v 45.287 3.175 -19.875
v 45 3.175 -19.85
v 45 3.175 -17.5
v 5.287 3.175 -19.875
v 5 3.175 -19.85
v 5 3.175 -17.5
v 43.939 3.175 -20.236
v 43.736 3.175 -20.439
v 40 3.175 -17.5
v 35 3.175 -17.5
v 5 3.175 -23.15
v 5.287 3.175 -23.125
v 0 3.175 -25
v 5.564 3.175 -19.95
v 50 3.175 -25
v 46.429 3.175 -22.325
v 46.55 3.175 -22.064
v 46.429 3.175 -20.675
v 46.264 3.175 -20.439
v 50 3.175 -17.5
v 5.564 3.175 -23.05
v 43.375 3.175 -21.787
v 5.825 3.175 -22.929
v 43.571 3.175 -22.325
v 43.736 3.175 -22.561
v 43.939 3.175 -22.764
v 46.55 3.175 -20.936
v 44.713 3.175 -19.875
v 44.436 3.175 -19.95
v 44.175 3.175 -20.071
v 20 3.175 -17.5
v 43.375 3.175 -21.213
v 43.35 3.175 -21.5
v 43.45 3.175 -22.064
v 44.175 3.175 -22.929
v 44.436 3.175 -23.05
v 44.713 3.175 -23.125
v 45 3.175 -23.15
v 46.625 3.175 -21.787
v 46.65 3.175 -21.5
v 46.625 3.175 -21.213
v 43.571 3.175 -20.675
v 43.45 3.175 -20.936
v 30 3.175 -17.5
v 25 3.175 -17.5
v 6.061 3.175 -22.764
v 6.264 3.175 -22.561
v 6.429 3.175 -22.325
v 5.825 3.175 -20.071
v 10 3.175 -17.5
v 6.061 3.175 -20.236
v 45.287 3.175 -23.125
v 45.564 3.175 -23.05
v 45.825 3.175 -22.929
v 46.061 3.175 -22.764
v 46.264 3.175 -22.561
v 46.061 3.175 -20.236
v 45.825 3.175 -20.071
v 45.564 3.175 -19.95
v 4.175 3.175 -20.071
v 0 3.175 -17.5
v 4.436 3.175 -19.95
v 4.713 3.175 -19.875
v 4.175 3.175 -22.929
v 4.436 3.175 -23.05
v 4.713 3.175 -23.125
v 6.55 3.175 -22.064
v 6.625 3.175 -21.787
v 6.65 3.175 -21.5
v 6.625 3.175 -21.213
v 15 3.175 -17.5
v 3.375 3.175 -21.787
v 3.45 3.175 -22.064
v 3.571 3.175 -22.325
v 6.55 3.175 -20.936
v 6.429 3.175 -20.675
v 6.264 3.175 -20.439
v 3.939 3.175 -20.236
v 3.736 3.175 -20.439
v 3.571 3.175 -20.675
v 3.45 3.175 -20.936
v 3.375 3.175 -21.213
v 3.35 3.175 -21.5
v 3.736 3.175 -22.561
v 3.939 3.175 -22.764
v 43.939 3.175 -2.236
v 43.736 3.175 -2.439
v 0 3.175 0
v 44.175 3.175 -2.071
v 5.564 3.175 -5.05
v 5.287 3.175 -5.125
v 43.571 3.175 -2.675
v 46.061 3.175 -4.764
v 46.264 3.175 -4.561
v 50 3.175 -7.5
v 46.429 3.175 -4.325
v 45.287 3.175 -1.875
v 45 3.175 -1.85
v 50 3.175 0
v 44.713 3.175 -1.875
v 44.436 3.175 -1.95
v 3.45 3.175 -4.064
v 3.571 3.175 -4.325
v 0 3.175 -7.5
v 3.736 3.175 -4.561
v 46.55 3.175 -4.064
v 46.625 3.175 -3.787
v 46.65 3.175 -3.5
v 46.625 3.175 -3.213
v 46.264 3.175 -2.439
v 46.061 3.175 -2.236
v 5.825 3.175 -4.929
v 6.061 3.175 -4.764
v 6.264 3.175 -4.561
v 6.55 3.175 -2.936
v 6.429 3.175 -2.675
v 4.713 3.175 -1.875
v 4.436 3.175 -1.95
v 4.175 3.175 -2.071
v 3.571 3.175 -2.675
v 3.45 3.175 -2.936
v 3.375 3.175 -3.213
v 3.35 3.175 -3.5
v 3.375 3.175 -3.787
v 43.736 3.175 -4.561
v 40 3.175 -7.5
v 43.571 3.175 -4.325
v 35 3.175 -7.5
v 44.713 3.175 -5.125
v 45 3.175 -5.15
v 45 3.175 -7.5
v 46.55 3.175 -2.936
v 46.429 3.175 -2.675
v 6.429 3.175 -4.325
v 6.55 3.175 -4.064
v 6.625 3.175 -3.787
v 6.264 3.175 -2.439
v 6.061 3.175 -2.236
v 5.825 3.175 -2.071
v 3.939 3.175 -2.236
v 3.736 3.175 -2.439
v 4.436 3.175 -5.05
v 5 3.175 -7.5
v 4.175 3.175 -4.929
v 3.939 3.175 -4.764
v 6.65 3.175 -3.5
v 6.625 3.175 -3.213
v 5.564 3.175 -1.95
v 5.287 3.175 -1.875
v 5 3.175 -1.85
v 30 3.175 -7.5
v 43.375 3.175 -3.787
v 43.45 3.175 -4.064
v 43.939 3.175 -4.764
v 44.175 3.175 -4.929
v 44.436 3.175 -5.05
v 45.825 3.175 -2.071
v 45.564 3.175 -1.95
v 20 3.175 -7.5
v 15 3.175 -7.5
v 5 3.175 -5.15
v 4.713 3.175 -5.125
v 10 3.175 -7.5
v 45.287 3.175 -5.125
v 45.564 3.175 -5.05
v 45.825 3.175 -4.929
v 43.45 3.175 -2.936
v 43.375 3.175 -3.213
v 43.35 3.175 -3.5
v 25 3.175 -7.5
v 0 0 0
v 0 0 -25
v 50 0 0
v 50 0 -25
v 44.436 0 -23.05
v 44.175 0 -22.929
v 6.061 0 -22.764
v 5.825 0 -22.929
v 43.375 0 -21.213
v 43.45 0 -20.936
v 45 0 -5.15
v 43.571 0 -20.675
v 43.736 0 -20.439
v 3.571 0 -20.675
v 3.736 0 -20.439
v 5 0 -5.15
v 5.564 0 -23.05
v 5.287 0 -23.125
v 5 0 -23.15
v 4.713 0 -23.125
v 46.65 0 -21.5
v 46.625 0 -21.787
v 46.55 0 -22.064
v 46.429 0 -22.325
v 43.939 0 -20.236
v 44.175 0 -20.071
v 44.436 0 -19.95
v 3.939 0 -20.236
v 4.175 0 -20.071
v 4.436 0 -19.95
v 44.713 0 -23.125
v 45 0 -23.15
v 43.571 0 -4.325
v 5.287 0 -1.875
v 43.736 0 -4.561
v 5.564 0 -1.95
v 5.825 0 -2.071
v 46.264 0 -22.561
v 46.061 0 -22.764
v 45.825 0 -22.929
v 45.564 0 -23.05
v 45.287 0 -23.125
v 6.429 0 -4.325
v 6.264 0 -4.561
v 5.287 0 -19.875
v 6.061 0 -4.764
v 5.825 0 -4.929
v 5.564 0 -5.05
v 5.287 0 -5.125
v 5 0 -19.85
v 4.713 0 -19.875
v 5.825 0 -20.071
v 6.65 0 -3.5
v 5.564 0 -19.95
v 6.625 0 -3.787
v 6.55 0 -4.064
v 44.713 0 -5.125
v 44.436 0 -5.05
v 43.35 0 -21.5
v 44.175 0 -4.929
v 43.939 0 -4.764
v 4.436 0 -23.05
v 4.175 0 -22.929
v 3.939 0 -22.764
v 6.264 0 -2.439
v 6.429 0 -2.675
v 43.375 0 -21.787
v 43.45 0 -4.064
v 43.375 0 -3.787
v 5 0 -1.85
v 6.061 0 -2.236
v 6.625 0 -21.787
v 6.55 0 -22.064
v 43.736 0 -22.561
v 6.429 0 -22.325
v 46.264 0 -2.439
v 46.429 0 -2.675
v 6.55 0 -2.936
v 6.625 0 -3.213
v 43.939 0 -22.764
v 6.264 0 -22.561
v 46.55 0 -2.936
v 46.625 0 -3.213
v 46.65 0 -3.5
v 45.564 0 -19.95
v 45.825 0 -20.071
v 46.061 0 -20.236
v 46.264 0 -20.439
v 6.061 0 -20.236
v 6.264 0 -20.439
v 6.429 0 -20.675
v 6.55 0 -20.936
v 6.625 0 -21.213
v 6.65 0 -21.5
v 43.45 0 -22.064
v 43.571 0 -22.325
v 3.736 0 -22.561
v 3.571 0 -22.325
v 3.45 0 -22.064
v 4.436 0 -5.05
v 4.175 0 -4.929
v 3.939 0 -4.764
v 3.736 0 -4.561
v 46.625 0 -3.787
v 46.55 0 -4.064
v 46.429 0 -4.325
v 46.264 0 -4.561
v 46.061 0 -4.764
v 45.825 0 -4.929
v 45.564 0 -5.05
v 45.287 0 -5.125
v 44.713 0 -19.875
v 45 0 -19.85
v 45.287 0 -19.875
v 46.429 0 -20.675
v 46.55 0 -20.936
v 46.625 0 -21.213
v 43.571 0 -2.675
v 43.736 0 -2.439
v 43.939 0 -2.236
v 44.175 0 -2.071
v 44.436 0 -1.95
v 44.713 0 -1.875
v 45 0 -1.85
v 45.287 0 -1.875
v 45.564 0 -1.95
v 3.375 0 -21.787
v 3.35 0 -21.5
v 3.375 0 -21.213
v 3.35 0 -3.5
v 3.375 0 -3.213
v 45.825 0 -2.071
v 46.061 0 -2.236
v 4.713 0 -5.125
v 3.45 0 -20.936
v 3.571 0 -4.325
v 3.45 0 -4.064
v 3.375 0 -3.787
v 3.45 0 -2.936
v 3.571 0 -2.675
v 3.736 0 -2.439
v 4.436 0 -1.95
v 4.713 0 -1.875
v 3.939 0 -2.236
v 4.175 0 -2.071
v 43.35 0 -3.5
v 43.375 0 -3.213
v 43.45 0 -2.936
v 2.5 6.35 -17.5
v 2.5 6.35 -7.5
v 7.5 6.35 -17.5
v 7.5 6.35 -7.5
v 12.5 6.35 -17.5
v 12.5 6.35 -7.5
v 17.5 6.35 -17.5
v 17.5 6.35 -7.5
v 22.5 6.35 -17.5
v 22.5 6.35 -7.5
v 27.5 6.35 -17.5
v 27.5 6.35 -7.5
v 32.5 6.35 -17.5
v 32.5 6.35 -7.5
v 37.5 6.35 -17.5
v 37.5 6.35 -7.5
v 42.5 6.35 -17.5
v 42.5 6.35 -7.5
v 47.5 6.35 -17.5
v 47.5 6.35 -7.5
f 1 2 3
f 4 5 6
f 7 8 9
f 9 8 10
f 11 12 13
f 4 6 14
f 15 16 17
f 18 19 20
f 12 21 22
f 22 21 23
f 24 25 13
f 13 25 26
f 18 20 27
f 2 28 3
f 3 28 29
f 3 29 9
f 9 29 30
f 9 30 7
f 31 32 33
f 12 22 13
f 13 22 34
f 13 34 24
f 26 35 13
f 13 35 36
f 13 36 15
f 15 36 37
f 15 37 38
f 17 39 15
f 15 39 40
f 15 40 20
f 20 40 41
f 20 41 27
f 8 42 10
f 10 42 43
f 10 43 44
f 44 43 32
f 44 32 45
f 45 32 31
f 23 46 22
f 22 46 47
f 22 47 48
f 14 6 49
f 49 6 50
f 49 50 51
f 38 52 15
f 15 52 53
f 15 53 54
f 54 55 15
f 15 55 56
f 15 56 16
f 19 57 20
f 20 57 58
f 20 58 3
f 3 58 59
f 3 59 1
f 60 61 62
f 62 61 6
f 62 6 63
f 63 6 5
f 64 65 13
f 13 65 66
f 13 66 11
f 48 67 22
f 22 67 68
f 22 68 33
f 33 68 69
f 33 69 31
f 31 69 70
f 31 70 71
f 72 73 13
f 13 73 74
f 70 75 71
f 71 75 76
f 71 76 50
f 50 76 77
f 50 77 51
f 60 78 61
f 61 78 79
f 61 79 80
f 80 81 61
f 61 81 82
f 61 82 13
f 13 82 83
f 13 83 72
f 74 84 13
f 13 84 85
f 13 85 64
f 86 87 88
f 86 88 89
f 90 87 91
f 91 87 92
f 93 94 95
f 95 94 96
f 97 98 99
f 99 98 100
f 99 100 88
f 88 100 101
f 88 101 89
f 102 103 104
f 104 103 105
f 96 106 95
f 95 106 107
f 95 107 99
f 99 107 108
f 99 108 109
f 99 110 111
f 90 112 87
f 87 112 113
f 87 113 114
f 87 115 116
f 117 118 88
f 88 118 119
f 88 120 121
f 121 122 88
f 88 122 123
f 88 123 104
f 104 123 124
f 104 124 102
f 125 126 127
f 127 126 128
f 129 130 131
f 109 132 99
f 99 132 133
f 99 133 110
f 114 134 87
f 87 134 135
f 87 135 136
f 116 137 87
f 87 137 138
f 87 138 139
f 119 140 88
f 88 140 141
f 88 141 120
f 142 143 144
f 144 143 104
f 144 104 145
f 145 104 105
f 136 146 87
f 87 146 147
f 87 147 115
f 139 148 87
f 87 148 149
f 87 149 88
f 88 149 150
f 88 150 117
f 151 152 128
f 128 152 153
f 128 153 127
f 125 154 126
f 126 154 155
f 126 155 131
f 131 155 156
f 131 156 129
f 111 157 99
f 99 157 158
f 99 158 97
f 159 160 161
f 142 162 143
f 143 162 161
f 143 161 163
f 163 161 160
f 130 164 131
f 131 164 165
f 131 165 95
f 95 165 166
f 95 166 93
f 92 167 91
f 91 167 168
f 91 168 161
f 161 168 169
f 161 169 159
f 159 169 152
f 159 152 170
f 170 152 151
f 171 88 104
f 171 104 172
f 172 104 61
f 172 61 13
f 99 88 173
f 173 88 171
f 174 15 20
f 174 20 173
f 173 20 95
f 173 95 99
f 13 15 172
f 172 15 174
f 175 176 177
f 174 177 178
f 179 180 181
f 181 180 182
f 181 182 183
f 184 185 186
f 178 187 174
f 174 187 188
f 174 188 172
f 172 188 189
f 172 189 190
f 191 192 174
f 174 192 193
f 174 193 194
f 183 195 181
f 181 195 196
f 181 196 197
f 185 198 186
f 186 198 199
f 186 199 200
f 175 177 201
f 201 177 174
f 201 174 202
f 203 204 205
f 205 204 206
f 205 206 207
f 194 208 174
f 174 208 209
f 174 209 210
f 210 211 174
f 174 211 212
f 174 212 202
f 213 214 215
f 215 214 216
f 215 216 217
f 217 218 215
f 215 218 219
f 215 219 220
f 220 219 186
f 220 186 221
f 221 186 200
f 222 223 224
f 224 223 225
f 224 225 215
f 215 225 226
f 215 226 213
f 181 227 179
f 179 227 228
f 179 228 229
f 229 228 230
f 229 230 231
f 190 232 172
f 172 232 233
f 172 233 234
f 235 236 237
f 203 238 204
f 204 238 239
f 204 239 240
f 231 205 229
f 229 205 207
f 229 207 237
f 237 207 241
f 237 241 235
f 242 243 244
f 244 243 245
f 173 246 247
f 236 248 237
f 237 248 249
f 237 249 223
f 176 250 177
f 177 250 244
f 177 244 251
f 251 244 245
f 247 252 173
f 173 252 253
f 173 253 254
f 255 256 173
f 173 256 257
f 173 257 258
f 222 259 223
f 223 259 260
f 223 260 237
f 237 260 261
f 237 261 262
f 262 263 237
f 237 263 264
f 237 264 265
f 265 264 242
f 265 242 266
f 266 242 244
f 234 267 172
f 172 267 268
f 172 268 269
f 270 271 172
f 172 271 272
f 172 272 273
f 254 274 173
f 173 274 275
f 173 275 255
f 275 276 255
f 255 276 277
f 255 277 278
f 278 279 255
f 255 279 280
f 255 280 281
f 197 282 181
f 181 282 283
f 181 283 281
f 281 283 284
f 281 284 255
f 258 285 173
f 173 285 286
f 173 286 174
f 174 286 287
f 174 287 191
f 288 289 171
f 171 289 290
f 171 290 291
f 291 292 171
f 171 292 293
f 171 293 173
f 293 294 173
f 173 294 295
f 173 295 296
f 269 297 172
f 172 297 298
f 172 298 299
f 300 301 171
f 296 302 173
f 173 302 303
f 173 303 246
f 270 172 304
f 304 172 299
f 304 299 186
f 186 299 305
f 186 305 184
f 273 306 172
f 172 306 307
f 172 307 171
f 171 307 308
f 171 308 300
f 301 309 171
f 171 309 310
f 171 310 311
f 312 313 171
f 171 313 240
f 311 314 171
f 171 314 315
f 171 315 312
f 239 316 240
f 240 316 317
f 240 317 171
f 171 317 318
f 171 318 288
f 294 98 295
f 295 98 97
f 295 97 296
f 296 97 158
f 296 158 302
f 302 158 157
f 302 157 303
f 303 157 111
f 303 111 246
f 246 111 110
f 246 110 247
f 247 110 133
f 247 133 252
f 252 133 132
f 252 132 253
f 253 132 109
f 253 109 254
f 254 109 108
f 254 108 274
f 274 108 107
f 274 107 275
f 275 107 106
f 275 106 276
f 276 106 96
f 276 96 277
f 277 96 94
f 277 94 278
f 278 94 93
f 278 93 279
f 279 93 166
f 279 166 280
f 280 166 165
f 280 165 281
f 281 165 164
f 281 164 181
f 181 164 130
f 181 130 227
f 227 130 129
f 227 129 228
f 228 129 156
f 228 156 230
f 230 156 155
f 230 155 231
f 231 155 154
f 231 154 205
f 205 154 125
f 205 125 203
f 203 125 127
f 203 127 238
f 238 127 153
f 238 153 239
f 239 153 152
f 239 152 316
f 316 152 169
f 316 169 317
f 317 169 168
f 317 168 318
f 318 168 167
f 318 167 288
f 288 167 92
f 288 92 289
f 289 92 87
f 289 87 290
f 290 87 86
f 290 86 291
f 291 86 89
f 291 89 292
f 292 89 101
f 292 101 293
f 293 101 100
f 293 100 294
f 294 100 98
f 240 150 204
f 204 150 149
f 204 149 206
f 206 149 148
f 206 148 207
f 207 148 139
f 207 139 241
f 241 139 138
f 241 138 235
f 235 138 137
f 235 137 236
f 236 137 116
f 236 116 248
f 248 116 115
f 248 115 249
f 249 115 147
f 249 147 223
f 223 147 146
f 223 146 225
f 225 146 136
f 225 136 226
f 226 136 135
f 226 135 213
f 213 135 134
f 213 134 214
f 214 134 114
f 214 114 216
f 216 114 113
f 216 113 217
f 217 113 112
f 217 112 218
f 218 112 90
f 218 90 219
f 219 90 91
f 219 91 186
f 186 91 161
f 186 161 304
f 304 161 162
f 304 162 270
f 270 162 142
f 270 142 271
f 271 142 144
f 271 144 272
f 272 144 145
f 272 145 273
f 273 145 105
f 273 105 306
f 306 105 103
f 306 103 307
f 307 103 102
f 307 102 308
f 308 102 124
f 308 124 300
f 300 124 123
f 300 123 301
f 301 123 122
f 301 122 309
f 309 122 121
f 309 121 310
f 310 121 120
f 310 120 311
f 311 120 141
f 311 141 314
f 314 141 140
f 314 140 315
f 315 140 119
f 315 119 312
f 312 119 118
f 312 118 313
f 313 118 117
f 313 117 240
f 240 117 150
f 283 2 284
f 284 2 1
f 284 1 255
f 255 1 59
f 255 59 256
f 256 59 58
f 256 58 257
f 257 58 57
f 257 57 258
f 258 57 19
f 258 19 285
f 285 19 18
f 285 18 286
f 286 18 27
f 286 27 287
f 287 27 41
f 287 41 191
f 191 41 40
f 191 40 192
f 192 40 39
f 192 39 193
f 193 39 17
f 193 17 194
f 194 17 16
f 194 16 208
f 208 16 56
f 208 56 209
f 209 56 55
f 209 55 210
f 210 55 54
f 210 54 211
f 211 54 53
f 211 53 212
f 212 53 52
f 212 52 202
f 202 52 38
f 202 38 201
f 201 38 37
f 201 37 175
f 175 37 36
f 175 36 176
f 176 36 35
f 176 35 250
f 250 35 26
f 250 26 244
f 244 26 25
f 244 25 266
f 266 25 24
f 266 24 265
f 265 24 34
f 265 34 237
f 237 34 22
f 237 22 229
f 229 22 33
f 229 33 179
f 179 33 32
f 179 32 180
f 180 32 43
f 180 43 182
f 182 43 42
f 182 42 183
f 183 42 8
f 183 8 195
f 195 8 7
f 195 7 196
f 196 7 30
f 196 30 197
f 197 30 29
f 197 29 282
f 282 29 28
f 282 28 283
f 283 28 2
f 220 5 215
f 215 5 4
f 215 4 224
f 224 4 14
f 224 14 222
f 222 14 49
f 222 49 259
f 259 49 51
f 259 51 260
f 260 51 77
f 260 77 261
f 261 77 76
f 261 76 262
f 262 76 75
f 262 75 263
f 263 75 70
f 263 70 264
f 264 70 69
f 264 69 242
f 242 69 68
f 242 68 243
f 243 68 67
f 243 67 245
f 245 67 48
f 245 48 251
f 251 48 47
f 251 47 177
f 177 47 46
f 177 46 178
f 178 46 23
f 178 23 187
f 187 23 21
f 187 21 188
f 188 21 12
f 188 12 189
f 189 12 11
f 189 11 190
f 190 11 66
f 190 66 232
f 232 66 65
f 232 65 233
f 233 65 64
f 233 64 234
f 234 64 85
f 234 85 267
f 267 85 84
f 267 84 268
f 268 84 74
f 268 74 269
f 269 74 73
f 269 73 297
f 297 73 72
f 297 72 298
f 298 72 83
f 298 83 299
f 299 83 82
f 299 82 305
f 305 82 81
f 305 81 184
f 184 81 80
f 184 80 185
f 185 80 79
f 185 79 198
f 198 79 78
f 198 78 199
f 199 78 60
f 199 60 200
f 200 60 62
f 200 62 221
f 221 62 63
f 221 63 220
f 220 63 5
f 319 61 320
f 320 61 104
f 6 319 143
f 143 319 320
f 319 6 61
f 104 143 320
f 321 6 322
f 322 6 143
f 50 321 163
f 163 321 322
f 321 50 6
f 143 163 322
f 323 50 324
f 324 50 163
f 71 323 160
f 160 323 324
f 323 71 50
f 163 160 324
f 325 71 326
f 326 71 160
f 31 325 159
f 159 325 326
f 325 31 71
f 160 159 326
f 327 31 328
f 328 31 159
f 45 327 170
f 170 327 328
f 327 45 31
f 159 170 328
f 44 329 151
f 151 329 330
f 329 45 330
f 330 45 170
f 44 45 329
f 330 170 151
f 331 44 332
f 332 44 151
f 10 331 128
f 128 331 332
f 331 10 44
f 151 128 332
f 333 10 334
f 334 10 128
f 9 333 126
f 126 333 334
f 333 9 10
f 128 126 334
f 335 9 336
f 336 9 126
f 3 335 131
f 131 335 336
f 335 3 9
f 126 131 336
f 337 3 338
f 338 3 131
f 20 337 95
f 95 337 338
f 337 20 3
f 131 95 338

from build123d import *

# Parameters (mm, degrees)
SKETCH1_W                 = 50
SKETCH1_H                 = 25
BOSS_EXTRUDE1_DEPTH       = 3.175
M4X0_7_TAPPED_HOLE1_D     = 3.3
M4X0_7_TAPPED_HOLE1_DEPTH = 10.1
M4X0_7_TAPPED_HOLE1_TIP   = 0.991420021
BOSS_EXTRUDE2_START       = -7.5
BOSS_EXTRUDE2_DEPTH       = 10


with BuildPart() as part:
    # Sketch1 → Boss-Extrude1 (new body)
    with BuildSketch(Plane(origin=(0, 0, 0), x_dir=(1, 0, 0), z_dir=(0, 1, 0))):
        with Locations((25, 12.5)):
            Rectangle(SKETCH1_W, SKETCH1_H)
    extrude(amount=BOSS_EXTRUDE1_DEPTH)

    # M4x0.7 Tapped Hole1
    with Locations(Plane(origin=(5, 3.175, -21.5), x_dir=(0, 0, 1), z_dir=(0, 1, 0))):
        with Locations((0, 0), (0, 40), (18, 0), (18, 40)):
            Hole(M4X0_7_TAPPED_HOLE1_D / 2, depth=M4X0_7_TAPPED_HOLE1_DEPTH)
            with Locations((0, 0, -(M4X0_7_TAPPED_HOLE1_DEPTH + M4X0_7_TAPPED_HOLE1_TIP / 2))):  # 118° drill point
                Cone(0, M4X0_7_TAPPED_HOLE1_D / 2, M4X0_7_TAPPED_HOLE1_TIP, mode=Mode.SUBTRACT)

    # Sketch4 → Boss-Extrude2 (add)
    with BuildSketch(Plane.XY.offset(BOSS_EXTRUDE2_START)):
        Polygon((0, 3.175), (5, 3.175), (2.5, 6.35), align=None)
        Polygon((5, 3.175), (10, 3.175), (7.5, 6.35), align=None)
        Polygon((10, 3.175), (15, 3.175), (12.5, 6.35), align=None)
        Polygon((15, 3.175), (20, 3.175), (17.5, 6.35), align=None)
        Polygon((20, 3.175), (25, 3.175), (22.5, 6.35), align=None)
        Polygon((27.5, 6.35), (25, 3.175), (30, 3.175), align=None)
        Polygon((32.5, 6.35), (30, 3.175), (35, 3.175), align=None)
        Polygon((37.5, 6.35), (35, 3.175), (40, 3.175), align=None)
        Polygon((42.5, 6.35), (40, 3.175), (45, 3.175), align=None)
        Polygon((47.5, 6.35), (45, 3.175), (50, 3.175), align=None)
    extrude(amount=-BOSS_EXTRUDE2_DEPTH)


solid = part.part
